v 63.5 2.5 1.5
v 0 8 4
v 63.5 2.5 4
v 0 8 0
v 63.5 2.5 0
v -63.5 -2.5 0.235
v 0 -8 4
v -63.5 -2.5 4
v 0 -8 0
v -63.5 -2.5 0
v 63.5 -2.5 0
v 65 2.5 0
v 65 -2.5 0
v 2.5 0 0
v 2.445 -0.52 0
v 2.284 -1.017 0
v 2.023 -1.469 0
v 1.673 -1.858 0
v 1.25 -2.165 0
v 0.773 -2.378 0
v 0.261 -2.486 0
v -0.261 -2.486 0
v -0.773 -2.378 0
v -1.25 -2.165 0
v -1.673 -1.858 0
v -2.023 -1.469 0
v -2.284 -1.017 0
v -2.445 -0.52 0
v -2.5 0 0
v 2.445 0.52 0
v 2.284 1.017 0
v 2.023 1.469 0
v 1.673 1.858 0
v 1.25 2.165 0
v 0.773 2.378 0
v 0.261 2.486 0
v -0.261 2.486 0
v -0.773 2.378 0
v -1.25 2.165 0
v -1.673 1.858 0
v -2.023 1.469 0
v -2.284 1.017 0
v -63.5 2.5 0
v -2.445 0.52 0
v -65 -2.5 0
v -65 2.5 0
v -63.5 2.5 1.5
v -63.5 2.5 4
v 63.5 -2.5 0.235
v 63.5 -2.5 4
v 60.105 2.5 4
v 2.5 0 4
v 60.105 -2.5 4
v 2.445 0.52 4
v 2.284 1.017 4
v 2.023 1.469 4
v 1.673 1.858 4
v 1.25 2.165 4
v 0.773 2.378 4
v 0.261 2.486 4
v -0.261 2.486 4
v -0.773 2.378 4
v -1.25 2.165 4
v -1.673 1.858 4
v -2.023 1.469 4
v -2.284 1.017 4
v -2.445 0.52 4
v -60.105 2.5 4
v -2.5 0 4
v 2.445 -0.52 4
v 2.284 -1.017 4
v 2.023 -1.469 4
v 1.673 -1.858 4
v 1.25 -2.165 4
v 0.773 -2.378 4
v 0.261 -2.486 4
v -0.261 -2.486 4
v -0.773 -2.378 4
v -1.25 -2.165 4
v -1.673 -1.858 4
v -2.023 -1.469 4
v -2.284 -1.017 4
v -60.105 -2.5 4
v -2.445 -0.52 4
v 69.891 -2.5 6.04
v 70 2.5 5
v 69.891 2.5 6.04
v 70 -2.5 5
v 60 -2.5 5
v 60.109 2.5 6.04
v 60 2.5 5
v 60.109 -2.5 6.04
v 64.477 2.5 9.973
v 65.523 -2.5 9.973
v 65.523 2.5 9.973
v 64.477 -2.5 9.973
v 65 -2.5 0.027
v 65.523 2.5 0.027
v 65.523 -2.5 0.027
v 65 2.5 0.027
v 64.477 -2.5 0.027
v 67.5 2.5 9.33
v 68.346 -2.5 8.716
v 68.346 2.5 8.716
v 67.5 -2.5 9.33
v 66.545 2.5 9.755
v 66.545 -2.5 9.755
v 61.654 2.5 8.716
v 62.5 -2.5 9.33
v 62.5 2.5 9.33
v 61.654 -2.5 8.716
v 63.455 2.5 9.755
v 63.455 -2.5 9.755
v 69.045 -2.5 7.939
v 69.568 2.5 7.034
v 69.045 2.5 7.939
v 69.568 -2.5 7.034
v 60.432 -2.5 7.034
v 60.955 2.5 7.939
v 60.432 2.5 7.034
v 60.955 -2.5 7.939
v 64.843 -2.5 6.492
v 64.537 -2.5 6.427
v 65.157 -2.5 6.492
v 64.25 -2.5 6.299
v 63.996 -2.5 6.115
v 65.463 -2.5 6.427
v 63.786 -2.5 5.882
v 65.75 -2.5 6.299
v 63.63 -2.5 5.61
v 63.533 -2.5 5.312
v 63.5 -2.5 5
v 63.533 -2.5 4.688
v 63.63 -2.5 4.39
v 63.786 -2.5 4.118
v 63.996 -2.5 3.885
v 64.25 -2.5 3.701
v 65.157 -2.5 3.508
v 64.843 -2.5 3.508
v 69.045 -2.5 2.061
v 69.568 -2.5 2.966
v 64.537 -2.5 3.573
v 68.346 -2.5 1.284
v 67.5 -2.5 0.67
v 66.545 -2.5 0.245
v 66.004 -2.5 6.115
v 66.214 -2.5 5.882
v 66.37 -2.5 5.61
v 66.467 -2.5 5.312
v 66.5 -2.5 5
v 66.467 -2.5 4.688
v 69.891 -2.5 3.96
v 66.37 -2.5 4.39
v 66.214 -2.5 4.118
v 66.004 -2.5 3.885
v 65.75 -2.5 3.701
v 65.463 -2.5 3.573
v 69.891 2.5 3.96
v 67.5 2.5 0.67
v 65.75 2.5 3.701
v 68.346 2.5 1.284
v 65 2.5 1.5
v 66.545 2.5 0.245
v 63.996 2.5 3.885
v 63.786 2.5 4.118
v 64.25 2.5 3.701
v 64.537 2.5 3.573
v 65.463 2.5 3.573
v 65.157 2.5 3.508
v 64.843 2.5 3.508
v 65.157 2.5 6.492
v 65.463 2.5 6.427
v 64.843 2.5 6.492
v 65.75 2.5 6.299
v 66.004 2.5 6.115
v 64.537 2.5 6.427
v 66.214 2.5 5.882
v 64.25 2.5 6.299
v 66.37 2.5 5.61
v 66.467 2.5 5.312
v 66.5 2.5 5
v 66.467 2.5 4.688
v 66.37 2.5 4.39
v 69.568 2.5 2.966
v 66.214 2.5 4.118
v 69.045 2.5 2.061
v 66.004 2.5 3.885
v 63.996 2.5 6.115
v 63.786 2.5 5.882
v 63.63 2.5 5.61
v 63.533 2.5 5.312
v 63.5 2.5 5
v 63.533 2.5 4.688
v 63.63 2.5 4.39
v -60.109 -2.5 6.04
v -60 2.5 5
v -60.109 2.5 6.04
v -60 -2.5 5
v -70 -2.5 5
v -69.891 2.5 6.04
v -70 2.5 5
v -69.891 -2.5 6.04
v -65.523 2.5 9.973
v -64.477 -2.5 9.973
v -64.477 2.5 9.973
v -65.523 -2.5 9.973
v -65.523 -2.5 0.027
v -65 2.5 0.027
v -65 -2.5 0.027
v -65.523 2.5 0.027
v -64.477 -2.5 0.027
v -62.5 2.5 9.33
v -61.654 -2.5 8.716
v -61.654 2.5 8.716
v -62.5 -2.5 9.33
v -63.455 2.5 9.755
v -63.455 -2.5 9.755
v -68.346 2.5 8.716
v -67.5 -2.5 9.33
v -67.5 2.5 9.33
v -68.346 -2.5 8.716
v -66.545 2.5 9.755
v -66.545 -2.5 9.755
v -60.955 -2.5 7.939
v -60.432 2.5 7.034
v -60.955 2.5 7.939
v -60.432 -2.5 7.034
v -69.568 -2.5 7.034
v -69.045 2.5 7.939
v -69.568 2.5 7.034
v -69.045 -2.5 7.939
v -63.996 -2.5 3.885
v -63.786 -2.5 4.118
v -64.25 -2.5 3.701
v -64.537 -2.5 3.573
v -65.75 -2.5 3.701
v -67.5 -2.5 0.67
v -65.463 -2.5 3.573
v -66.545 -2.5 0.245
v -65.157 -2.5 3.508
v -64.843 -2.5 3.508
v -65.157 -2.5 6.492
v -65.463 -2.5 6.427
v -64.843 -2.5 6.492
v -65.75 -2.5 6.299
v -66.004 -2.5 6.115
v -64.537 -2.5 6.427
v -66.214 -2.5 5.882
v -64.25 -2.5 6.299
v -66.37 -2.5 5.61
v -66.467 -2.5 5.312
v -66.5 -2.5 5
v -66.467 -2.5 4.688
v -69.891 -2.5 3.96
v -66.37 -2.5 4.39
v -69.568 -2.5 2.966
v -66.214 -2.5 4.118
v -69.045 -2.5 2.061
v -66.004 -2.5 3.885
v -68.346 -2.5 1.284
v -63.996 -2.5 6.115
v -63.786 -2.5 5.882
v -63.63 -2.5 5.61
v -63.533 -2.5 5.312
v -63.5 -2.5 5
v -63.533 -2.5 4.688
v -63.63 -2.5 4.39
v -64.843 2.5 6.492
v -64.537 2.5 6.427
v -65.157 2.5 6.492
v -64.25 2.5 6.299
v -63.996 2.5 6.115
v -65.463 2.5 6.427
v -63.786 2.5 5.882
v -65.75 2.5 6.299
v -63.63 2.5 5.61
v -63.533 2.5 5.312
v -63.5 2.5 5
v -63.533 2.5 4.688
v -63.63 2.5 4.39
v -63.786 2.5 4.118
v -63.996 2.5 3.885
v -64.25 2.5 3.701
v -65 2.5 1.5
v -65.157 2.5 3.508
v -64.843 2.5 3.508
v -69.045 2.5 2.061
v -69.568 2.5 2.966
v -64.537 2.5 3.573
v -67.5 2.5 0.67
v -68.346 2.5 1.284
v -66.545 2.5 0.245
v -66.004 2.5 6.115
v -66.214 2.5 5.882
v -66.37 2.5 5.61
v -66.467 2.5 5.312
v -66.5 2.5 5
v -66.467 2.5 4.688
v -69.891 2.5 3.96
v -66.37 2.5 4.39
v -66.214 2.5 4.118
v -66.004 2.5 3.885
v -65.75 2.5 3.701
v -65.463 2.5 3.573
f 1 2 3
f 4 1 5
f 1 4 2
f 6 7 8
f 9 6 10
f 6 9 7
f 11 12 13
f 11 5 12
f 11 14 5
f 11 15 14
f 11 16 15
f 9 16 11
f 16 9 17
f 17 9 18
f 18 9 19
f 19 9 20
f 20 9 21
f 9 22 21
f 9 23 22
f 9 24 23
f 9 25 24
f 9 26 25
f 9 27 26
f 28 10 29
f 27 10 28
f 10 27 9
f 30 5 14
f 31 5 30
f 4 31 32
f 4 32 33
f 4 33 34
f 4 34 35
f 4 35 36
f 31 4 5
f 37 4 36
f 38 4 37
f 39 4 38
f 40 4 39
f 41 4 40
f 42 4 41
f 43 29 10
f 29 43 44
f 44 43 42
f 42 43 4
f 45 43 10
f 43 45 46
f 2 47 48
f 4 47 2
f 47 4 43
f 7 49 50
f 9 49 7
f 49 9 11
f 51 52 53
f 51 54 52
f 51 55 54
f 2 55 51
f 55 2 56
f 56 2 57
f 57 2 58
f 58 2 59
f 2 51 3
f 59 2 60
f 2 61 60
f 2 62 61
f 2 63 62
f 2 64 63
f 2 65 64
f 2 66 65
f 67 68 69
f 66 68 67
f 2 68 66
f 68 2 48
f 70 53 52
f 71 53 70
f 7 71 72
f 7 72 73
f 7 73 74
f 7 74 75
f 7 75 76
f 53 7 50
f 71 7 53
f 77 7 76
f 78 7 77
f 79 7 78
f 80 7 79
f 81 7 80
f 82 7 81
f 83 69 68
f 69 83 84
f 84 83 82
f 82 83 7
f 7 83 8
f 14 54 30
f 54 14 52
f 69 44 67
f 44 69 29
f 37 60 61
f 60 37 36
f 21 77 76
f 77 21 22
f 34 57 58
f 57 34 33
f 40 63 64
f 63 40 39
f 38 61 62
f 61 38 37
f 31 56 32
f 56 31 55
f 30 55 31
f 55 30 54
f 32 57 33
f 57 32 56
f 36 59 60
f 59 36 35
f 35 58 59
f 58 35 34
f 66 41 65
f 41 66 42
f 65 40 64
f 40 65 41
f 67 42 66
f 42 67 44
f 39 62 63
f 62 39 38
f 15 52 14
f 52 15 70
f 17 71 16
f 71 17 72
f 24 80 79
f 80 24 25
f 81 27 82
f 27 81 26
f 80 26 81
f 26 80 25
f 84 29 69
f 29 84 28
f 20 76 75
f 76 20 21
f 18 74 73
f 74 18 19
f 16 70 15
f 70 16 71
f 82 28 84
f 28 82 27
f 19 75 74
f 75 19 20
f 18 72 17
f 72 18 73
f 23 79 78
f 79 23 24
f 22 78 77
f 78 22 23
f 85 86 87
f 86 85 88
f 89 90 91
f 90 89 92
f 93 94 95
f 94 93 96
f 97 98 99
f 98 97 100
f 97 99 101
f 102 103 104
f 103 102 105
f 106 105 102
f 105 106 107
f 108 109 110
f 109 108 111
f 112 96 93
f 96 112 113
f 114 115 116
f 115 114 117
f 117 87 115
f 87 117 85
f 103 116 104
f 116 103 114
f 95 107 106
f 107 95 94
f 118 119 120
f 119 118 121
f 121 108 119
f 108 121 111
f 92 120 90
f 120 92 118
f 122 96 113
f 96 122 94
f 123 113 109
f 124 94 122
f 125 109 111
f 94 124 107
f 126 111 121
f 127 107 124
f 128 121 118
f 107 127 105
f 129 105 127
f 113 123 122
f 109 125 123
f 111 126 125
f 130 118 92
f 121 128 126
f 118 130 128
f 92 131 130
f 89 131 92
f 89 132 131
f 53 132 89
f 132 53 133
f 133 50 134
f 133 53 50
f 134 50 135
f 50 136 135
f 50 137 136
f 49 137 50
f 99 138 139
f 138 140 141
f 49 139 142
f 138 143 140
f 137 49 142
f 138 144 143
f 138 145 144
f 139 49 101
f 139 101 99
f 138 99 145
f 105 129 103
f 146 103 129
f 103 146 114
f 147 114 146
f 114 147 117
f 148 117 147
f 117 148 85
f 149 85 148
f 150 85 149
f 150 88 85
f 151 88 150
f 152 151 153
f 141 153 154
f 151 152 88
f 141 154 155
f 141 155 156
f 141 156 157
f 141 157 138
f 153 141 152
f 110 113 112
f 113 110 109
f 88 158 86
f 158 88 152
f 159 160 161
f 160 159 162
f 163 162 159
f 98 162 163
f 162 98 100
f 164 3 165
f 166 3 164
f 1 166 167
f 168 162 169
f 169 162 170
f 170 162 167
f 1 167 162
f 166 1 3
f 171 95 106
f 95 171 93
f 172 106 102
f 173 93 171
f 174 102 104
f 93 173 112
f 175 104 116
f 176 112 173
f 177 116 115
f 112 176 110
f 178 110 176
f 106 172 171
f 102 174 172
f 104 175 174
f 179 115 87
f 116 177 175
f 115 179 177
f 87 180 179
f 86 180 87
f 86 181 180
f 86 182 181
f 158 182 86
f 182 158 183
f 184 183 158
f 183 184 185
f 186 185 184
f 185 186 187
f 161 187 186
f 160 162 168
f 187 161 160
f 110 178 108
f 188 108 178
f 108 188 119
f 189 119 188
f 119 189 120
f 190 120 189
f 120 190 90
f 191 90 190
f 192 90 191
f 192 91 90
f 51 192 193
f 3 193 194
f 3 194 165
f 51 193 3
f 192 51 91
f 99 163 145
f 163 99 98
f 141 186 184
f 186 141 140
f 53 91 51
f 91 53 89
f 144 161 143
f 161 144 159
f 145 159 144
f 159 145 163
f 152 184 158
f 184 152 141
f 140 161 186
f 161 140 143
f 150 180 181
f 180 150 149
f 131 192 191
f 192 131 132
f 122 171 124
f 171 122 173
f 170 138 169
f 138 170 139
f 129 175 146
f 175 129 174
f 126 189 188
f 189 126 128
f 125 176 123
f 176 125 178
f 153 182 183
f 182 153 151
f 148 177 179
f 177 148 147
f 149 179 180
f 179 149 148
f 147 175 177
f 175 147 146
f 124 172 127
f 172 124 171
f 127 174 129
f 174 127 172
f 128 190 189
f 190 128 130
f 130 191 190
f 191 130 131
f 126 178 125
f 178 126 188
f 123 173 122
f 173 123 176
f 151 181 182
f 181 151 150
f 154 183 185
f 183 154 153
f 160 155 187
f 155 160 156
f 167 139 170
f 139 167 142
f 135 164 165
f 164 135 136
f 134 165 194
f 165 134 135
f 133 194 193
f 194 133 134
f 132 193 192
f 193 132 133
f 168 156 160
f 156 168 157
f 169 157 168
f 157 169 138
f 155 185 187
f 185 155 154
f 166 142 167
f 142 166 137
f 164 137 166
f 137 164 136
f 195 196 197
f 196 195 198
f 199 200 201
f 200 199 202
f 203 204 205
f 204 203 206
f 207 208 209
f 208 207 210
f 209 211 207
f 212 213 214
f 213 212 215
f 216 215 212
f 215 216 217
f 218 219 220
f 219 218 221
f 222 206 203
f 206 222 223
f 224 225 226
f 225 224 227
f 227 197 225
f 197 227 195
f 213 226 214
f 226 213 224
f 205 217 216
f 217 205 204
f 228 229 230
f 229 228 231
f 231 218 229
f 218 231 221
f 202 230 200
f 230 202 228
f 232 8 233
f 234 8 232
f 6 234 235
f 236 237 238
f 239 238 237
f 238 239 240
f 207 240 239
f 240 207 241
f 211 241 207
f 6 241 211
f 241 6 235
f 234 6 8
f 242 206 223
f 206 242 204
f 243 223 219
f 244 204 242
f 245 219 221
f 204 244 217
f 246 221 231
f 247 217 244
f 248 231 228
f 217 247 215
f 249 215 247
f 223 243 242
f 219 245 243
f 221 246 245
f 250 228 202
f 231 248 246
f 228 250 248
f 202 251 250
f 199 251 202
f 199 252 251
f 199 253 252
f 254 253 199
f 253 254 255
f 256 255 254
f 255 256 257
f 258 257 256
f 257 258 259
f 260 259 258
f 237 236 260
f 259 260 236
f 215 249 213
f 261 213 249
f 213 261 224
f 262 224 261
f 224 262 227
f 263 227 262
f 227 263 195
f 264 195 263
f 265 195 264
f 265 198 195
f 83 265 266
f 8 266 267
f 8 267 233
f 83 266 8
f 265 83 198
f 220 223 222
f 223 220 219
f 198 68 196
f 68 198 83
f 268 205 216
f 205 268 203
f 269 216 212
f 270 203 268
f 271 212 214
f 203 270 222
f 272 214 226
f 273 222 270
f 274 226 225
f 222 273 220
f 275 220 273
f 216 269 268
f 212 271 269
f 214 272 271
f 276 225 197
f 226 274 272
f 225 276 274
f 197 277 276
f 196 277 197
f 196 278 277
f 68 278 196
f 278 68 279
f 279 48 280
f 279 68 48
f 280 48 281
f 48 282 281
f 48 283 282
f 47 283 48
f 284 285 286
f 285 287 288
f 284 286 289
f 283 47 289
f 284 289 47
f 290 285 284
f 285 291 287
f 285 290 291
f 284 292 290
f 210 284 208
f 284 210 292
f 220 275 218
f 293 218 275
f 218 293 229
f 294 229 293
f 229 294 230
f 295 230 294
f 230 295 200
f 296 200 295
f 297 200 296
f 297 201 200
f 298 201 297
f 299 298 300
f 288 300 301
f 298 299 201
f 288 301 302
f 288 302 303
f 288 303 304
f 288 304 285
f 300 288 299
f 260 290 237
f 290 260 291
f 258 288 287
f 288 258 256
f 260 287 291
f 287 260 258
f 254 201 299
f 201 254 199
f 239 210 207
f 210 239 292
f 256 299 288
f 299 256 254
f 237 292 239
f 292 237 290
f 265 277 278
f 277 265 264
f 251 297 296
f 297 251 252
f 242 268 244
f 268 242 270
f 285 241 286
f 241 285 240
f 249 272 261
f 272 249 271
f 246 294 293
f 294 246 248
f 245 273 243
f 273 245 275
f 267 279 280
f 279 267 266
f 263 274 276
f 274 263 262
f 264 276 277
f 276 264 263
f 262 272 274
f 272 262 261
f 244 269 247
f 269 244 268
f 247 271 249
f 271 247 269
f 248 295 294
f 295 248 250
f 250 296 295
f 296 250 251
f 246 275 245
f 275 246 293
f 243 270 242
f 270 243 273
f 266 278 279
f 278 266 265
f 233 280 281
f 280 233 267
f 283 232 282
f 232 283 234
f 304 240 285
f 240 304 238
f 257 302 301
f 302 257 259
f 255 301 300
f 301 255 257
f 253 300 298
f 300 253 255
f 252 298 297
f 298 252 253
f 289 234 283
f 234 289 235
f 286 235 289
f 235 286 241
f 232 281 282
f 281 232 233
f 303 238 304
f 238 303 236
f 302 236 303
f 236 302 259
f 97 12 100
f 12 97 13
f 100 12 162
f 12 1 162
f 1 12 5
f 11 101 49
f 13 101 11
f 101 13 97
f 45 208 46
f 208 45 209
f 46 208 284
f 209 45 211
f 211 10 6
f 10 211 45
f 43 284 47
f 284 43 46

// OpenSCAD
$fn=30;

difference(){

linear_extrude(height=4)
polygon(
[[-63.5,2.5],
[0,8],
[63.5,2.5],
[63.5,-2.5],
[0,-8],
[-63.5,-2.5]]);

cylinder(d=5,h=10,center=true);
}

translate([65,0,5])rotate([90,0,0])
difference(){
cylinder(d=10,h=5,center=true);
cylinder(d=3,h=7,center=true);
}

translate([-65,0,5])rotate([90,0,0])
difference(){
cylinder(d=10,h=5,center=true);
cylinder(d=3,h=7,center=true);
}

translate([60,-2.5,0])
cube([5,5,1.5]);

translate([-65,-2.5,0])
cube([5,5,1.5]);
